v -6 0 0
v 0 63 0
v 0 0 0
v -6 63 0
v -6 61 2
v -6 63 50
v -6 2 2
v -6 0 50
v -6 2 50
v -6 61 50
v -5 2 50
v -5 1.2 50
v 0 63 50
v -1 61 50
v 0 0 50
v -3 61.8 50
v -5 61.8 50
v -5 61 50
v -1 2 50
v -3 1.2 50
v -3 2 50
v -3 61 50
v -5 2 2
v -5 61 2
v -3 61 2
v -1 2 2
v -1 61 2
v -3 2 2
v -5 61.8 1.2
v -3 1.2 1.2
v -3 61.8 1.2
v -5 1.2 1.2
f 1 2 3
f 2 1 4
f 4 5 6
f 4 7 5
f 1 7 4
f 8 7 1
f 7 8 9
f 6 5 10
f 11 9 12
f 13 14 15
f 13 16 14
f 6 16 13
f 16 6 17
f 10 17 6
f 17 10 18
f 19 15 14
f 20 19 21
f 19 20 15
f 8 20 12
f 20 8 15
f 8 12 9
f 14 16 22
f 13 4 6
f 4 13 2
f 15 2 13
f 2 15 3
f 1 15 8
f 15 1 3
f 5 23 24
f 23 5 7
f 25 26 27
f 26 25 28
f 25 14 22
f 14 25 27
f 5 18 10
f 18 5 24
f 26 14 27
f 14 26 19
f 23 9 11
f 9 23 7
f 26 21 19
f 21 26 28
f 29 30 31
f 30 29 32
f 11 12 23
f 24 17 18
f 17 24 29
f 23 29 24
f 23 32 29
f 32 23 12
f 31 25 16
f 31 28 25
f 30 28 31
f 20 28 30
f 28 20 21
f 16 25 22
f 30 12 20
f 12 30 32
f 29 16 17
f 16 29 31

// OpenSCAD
module support() {
    difference(){
        cube([50,63,6]);
        translate([2,2,1]) cube([50,59,5]);
        translate([1.2,1.2,3]) cube([50,60.6,2]);
    }
}

//rotate to print without overhang, but brim is advised
rotate([0,-90,0]) support();
